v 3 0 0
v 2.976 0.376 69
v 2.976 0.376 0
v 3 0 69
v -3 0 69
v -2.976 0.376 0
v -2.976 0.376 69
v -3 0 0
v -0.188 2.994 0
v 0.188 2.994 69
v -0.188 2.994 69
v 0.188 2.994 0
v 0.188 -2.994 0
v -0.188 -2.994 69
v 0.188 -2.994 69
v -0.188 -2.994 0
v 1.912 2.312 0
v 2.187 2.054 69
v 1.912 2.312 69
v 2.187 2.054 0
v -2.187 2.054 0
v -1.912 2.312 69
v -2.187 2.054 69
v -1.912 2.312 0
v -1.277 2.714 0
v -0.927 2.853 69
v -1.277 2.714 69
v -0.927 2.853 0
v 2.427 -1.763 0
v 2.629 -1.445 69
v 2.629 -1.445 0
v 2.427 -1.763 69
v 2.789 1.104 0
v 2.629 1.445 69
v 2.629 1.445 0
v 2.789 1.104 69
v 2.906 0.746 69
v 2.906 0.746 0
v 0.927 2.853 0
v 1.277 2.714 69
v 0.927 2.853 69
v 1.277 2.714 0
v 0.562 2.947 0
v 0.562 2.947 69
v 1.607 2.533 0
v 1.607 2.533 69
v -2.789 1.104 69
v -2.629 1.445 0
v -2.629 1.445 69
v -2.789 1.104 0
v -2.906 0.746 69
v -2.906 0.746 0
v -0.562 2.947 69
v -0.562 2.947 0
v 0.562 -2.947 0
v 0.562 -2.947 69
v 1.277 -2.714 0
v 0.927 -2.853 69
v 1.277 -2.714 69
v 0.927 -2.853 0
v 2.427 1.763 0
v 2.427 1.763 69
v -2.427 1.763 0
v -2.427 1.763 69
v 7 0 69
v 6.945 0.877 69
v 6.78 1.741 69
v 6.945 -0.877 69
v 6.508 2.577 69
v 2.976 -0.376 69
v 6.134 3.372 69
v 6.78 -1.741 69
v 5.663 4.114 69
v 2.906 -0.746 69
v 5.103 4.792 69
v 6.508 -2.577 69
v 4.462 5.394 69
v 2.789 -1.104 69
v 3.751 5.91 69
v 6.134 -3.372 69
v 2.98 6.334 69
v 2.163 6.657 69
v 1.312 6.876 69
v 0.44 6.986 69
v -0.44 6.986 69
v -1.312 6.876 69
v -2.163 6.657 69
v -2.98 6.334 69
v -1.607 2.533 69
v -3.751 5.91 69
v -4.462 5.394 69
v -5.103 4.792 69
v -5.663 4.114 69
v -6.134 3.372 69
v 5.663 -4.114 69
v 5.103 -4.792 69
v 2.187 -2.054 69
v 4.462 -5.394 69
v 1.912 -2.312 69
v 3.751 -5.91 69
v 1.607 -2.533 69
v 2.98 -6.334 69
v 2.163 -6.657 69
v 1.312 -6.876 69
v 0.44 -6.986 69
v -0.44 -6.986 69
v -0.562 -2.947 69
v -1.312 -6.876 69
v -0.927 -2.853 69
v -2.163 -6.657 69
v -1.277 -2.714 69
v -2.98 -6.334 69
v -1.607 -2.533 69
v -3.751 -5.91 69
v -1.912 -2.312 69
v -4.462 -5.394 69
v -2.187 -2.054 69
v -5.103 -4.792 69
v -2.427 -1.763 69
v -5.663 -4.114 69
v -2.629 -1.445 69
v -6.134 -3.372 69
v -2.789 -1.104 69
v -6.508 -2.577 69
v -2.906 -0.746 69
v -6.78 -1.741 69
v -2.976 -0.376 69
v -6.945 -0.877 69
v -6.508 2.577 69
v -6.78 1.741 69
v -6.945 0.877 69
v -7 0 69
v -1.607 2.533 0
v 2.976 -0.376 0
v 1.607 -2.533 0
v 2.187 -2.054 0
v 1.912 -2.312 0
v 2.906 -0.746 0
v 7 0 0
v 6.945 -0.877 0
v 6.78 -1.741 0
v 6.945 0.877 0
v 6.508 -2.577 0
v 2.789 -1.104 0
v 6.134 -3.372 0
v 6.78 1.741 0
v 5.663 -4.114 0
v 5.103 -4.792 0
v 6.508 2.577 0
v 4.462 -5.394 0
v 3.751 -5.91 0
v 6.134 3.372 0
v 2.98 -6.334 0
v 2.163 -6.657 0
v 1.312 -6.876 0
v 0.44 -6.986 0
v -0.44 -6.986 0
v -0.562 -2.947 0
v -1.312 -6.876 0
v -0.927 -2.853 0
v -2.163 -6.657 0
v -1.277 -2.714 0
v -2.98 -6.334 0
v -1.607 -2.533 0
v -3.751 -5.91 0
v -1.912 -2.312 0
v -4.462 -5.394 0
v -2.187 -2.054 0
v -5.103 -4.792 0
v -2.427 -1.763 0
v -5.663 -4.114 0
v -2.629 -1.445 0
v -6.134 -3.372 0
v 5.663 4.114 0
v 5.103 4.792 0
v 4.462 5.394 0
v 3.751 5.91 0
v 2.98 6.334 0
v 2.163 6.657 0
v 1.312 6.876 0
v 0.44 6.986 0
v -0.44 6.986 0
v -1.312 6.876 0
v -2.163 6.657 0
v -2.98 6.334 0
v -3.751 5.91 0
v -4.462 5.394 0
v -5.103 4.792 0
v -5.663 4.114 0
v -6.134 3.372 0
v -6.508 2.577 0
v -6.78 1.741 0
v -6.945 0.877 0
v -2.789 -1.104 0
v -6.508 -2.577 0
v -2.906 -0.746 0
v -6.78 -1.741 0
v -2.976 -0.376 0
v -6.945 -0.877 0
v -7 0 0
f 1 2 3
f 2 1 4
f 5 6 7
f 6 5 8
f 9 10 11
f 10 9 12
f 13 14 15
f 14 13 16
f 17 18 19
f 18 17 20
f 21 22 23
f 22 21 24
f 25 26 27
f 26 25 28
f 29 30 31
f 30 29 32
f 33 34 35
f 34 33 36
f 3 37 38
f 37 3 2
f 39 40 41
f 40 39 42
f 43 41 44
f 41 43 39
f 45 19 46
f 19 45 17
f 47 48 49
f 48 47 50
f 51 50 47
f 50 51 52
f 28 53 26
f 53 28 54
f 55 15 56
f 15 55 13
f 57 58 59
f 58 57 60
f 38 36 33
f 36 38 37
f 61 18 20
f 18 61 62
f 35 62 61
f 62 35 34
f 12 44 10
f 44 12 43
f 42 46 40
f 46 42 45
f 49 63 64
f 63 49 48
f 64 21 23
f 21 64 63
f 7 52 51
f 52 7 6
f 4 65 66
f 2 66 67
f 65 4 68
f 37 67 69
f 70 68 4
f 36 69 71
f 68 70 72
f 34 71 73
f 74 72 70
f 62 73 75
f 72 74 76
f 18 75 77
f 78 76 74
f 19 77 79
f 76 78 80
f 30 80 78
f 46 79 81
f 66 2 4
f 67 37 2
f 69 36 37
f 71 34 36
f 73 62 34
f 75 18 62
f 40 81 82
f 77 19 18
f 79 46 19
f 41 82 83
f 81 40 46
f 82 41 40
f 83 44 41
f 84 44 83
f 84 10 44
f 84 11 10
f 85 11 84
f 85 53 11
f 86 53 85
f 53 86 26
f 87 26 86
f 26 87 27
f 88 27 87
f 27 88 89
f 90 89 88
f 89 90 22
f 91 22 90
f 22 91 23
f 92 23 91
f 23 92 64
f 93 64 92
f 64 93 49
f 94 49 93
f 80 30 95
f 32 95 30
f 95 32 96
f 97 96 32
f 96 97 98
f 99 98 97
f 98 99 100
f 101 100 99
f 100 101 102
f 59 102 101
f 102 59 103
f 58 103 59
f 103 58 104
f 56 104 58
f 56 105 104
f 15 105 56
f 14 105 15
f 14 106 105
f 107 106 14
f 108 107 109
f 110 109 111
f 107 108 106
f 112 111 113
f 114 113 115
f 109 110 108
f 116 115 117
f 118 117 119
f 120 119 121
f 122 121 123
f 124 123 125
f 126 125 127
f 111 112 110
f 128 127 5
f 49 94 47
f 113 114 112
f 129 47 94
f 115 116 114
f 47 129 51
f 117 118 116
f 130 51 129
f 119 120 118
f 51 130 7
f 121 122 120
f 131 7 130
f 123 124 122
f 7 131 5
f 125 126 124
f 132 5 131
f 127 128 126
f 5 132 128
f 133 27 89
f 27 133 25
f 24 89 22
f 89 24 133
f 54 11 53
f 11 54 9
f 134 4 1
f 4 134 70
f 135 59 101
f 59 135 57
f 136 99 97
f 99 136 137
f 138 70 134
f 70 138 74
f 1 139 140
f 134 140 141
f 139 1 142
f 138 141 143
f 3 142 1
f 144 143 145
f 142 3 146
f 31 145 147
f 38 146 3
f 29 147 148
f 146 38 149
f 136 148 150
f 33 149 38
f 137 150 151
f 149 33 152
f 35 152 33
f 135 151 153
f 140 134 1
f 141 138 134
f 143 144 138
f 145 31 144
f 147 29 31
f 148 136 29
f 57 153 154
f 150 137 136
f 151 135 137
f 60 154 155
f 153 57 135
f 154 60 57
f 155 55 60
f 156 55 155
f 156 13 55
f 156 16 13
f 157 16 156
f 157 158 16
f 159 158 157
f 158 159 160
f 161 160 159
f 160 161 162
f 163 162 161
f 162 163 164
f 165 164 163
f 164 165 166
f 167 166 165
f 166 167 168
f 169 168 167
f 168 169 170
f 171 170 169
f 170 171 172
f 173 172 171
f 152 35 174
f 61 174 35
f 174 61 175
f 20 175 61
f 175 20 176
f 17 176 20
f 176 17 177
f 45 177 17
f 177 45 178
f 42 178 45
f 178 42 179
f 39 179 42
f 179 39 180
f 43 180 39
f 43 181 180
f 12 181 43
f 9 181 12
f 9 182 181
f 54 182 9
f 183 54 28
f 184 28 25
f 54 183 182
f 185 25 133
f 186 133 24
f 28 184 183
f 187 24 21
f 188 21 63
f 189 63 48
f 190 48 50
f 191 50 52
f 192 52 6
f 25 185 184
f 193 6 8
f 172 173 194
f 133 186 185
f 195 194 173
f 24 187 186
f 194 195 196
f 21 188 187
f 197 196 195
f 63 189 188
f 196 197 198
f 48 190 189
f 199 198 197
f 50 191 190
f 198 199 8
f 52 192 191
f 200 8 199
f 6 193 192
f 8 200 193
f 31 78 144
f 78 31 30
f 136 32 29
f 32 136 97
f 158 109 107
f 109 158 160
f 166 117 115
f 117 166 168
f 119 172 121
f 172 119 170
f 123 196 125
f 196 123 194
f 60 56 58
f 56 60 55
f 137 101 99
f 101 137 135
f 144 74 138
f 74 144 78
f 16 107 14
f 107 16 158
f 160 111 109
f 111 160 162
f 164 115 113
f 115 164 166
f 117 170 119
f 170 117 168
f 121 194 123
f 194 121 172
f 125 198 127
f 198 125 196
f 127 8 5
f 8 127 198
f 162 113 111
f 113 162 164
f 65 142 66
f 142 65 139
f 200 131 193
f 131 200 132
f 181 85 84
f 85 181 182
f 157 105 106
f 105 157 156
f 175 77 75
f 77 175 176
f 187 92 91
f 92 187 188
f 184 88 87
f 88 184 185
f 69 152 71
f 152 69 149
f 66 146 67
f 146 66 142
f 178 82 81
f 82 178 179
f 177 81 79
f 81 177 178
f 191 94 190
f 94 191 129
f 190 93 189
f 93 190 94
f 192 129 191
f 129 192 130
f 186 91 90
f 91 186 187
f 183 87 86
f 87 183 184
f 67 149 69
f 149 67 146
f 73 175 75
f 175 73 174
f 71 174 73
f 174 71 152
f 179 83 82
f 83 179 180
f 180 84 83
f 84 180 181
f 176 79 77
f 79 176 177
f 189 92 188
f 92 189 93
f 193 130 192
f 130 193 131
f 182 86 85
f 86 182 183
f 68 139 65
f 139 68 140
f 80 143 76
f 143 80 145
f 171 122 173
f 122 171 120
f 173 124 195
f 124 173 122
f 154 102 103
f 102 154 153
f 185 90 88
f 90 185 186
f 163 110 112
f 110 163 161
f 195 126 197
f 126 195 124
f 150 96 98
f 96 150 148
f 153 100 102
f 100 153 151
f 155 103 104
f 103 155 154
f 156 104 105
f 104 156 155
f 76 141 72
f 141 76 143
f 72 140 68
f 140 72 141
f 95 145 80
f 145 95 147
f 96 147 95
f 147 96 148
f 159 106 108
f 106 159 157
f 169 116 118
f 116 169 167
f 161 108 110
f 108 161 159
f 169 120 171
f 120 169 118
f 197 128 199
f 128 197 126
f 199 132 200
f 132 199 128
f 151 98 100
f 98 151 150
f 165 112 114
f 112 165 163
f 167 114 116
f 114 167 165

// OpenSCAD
$fn = 50;


difference() {
	union() {
		cylinder(h = 69, r = 7.0000000000);
	}
	union() {
		cylinder(h = 69, r = 3.0000000000);
		cylinder(h = 69, r = 3.0000000000);
		cylinder(h = 69, r = 1.5000000000);
		cylinder(h = 69, r = 1.5000000000);
		cylinder(h = 69, r = 1.5000000000);
		cylinder(h = 69, r = 1.5000000000);
		cylinder(h = 69, r = 1.5000000000);
		cylinder(h = 69, r = 1.5000000000);
	}
}
